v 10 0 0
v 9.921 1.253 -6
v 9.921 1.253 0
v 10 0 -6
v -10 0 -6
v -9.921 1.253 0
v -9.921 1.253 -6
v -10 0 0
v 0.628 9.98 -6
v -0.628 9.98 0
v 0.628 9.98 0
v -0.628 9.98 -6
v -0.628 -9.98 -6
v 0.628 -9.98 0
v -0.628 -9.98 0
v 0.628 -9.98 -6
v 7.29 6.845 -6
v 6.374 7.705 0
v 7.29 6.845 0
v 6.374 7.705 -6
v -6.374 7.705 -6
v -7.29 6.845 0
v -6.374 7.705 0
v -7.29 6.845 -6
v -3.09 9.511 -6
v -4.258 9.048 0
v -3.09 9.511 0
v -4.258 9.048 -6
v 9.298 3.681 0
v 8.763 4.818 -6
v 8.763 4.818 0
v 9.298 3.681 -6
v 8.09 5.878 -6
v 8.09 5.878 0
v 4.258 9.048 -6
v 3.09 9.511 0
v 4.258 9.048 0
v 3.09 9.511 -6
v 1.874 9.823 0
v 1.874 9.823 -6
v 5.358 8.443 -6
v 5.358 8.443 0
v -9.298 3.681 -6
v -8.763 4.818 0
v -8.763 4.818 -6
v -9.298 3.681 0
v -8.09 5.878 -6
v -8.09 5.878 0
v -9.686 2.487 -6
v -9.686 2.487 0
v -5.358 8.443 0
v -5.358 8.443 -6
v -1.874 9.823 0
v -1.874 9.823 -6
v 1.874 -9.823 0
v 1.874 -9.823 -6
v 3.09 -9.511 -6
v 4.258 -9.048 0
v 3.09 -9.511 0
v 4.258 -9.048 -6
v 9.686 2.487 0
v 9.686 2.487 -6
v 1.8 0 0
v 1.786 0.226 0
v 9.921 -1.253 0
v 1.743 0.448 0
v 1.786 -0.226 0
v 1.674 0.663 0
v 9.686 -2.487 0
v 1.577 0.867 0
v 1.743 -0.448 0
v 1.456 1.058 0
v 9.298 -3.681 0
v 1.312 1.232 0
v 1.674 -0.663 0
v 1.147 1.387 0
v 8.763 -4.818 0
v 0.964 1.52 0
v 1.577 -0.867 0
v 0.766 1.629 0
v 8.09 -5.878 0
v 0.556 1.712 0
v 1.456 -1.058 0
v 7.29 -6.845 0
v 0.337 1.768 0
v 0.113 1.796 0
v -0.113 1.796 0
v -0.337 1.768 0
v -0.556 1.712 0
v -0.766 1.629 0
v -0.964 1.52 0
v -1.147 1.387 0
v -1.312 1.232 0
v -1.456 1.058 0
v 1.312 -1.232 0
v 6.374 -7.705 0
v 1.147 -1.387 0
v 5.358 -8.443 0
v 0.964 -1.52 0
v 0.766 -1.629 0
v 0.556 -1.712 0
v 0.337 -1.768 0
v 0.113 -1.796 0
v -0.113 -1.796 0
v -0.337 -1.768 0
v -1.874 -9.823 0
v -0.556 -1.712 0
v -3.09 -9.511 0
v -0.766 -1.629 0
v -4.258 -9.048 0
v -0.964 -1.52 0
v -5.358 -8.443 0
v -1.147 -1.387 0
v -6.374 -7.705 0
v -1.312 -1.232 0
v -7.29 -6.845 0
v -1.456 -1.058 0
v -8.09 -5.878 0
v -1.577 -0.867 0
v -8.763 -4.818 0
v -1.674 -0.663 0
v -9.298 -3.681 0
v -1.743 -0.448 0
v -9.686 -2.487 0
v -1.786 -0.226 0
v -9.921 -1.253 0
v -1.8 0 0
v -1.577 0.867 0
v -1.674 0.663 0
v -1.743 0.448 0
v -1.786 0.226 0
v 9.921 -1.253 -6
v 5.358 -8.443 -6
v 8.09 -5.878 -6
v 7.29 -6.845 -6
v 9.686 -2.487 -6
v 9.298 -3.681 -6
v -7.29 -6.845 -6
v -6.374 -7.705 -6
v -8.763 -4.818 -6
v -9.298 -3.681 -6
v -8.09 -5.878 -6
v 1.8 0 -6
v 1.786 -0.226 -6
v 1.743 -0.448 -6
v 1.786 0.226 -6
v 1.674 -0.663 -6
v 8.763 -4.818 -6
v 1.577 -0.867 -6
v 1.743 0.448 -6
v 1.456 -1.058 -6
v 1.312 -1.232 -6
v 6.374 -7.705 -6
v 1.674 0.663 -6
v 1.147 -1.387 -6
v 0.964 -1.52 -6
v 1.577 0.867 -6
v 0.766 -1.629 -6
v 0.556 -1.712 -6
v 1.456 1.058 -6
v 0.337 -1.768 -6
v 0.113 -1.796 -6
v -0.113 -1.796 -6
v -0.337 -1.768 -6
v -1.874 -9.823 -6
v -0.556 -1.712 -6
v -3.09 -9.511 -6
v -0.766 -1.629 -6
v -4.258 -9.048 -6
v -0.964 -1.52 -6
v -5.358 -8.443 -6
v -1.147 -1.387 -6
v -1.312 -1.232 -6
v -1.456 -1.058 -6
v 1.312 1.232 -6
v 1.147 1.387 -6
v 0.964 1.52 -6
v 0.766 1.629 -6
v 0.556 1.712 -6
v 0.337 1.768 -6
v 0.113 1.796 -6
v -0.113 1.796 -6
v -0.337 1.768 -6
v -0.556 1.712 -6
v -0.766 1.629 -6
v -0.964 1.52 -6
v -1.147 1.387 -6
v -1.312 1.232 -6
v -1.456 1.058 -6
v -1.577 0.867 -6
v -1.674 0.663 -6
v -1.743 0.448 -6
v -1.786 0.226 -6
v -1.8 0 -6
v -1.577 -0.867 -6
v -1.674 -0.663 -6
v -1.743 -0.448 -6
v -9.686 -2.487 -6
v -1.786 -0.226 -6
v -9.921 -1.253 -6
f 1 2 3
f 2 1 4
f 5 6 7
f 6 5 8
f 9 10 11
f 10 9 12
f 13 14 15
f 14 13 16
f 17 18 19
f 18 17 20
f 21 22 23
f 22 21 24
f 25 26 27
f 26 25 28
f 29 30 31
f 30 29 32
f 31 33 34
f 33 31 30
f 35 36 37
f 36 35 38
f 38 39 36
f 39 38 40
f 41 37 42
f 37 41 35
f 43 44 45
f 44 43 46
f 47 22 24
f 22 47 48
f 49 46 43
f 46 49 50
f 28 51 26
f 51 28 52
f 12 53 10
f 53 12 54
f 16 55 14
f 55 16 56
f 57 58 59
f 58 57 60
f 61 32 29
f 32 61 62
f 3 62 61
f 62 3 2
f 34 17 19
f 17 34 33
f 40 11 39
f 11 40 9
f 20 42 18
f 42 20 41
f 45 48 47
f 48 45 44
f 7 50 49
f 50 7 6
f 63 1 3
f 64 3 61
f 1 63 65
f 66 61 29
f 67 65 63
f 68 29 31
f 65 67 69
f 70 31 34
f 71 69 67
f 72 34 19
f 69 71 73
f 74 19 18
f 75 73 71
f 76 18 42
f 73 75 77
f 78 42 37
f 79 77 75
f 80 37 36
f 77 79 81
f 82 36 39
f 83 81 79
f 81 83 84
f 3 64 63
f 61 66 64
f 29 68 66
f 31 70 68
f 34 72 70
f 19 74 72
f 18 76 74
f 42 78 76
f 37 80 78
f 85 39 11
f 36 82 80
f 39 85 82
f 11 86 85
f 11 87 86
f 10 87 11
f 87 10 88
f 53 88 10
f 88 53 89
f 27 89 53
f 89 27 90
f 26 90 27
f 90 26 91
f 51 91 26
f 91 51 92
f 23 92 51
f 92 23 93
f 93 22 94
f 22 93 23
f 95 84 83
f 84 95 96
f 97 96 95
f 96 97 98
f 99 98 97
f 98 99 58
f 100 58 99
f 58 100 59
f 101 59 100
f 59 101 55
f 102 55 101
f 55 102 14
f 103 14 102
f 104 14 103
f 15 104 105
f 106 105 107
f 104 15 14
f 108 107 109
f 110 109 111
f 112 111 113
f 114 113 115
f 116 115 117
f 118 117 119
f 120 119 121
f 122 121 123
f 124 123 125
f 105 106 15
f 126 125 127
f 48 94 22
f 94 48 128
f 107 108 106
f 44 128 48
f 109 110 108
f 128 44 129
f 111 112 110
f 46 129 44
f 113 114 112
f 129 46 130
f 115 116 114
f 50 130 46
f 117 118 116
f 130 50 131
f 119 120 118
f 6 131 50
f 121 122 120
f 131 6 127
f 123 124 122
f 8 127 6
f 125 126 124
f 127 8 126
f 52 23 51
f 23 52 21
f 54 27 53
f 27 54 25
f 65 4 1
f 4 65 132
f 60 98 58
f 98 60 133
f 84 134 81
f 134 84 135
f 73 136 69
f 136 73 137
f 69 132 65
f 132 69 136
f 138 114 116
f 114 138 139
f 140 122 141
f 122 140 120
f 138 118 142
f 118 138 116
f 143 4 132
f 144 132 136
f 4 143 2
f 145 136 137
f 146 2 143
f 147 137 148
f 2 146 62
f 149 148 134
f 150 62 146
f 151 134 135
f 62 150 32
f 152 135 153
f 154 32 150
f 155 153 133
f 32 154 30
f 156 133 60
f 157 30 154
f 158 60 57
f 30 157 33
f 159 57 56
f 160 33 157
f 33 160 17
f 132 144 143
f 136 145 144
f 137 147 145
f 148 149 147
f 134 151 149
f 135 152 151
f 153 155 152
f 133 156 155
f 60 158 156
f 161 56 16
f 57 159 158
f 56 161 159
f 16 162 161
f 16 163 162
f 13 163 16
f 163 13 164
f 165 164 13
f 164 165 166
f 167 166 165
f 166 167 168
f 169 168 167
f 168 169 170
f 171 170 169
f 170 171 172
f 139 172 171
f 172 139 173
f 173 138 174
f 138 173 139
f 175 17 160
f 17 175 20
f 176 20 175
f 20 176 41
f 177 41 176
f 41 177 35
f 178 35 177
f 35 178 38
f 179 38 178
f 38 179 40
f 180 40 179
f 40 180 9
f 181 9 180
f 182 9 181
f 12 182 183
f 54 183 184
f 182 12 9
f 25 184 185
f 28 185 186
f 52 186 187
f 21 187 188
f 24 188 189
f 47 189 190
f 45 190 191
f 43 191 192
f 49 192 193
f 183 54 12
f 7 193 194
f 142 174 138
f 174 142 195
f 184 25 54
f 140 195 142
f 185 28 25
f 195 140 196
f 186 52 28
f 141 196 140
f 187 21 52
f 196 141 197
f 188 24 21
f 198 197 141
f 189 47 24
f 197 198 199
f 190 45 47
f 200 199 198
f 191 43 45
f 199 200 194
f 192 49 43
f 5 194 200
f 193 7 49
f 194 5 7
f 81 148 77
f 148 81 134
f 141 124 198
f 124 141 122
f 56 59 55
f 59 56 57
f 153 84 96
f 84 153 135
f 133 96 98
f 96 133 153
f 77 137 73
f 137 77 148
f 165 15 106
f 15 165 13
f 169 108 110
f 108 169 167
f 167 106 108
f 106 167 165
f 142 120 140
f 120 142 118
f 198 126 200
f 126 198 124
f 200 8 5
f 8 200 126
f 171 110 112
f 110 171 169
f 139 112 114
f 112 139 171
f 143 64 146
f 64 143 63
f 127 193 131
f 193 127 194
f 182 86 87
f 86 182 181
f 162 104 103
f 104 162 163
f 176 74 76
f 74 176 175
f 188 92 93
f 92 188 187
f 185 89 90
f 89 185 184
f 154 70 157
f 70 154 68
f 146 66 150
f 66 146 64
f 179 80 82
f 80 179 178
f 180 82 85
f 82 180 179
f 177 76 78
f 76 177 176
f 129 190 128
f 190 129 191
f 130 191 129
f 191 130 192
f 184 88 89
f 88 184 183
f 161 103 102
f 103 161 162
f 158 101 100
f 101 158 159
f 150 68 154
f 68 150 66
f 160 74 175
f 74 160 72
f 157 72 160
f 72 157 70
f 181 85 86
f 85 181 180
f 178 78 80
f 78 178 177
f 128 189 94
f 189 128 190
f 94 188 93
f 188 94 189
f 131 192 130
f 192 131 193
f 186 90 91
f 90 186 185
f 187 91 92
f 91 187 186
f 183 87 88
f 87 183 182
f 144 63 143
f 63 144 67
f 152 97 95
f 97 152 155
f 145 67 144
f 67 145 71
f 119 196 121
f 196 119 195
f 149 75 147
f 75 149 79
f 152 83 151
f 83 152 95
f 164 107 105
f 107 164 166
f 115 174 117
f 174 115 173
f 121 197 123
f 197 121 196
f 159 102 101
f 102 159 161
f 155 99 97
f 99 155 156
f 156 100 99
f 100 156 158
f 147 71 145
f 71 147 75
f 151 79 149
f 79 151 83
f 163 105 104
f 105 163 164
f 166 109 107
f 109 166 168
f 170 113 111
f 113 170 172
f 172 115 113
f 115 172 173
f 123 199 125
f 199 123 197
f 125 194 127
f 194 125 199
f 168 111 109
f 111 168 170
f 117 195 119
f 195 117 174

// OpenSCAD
$fn = 50;


difference() {
	union() {
		translate(v = [0, 0, -6.0000000000]) {
			cylinder(h = 6, r = 10.0000000000);
		}
		cylinder(h = 0, r = 13.0000000000);
	}
	union() {
		#translate(v = [0, 0, -6]) {
			cylinder(h = 6, r = 1.8000000000);
		}
	}
}
